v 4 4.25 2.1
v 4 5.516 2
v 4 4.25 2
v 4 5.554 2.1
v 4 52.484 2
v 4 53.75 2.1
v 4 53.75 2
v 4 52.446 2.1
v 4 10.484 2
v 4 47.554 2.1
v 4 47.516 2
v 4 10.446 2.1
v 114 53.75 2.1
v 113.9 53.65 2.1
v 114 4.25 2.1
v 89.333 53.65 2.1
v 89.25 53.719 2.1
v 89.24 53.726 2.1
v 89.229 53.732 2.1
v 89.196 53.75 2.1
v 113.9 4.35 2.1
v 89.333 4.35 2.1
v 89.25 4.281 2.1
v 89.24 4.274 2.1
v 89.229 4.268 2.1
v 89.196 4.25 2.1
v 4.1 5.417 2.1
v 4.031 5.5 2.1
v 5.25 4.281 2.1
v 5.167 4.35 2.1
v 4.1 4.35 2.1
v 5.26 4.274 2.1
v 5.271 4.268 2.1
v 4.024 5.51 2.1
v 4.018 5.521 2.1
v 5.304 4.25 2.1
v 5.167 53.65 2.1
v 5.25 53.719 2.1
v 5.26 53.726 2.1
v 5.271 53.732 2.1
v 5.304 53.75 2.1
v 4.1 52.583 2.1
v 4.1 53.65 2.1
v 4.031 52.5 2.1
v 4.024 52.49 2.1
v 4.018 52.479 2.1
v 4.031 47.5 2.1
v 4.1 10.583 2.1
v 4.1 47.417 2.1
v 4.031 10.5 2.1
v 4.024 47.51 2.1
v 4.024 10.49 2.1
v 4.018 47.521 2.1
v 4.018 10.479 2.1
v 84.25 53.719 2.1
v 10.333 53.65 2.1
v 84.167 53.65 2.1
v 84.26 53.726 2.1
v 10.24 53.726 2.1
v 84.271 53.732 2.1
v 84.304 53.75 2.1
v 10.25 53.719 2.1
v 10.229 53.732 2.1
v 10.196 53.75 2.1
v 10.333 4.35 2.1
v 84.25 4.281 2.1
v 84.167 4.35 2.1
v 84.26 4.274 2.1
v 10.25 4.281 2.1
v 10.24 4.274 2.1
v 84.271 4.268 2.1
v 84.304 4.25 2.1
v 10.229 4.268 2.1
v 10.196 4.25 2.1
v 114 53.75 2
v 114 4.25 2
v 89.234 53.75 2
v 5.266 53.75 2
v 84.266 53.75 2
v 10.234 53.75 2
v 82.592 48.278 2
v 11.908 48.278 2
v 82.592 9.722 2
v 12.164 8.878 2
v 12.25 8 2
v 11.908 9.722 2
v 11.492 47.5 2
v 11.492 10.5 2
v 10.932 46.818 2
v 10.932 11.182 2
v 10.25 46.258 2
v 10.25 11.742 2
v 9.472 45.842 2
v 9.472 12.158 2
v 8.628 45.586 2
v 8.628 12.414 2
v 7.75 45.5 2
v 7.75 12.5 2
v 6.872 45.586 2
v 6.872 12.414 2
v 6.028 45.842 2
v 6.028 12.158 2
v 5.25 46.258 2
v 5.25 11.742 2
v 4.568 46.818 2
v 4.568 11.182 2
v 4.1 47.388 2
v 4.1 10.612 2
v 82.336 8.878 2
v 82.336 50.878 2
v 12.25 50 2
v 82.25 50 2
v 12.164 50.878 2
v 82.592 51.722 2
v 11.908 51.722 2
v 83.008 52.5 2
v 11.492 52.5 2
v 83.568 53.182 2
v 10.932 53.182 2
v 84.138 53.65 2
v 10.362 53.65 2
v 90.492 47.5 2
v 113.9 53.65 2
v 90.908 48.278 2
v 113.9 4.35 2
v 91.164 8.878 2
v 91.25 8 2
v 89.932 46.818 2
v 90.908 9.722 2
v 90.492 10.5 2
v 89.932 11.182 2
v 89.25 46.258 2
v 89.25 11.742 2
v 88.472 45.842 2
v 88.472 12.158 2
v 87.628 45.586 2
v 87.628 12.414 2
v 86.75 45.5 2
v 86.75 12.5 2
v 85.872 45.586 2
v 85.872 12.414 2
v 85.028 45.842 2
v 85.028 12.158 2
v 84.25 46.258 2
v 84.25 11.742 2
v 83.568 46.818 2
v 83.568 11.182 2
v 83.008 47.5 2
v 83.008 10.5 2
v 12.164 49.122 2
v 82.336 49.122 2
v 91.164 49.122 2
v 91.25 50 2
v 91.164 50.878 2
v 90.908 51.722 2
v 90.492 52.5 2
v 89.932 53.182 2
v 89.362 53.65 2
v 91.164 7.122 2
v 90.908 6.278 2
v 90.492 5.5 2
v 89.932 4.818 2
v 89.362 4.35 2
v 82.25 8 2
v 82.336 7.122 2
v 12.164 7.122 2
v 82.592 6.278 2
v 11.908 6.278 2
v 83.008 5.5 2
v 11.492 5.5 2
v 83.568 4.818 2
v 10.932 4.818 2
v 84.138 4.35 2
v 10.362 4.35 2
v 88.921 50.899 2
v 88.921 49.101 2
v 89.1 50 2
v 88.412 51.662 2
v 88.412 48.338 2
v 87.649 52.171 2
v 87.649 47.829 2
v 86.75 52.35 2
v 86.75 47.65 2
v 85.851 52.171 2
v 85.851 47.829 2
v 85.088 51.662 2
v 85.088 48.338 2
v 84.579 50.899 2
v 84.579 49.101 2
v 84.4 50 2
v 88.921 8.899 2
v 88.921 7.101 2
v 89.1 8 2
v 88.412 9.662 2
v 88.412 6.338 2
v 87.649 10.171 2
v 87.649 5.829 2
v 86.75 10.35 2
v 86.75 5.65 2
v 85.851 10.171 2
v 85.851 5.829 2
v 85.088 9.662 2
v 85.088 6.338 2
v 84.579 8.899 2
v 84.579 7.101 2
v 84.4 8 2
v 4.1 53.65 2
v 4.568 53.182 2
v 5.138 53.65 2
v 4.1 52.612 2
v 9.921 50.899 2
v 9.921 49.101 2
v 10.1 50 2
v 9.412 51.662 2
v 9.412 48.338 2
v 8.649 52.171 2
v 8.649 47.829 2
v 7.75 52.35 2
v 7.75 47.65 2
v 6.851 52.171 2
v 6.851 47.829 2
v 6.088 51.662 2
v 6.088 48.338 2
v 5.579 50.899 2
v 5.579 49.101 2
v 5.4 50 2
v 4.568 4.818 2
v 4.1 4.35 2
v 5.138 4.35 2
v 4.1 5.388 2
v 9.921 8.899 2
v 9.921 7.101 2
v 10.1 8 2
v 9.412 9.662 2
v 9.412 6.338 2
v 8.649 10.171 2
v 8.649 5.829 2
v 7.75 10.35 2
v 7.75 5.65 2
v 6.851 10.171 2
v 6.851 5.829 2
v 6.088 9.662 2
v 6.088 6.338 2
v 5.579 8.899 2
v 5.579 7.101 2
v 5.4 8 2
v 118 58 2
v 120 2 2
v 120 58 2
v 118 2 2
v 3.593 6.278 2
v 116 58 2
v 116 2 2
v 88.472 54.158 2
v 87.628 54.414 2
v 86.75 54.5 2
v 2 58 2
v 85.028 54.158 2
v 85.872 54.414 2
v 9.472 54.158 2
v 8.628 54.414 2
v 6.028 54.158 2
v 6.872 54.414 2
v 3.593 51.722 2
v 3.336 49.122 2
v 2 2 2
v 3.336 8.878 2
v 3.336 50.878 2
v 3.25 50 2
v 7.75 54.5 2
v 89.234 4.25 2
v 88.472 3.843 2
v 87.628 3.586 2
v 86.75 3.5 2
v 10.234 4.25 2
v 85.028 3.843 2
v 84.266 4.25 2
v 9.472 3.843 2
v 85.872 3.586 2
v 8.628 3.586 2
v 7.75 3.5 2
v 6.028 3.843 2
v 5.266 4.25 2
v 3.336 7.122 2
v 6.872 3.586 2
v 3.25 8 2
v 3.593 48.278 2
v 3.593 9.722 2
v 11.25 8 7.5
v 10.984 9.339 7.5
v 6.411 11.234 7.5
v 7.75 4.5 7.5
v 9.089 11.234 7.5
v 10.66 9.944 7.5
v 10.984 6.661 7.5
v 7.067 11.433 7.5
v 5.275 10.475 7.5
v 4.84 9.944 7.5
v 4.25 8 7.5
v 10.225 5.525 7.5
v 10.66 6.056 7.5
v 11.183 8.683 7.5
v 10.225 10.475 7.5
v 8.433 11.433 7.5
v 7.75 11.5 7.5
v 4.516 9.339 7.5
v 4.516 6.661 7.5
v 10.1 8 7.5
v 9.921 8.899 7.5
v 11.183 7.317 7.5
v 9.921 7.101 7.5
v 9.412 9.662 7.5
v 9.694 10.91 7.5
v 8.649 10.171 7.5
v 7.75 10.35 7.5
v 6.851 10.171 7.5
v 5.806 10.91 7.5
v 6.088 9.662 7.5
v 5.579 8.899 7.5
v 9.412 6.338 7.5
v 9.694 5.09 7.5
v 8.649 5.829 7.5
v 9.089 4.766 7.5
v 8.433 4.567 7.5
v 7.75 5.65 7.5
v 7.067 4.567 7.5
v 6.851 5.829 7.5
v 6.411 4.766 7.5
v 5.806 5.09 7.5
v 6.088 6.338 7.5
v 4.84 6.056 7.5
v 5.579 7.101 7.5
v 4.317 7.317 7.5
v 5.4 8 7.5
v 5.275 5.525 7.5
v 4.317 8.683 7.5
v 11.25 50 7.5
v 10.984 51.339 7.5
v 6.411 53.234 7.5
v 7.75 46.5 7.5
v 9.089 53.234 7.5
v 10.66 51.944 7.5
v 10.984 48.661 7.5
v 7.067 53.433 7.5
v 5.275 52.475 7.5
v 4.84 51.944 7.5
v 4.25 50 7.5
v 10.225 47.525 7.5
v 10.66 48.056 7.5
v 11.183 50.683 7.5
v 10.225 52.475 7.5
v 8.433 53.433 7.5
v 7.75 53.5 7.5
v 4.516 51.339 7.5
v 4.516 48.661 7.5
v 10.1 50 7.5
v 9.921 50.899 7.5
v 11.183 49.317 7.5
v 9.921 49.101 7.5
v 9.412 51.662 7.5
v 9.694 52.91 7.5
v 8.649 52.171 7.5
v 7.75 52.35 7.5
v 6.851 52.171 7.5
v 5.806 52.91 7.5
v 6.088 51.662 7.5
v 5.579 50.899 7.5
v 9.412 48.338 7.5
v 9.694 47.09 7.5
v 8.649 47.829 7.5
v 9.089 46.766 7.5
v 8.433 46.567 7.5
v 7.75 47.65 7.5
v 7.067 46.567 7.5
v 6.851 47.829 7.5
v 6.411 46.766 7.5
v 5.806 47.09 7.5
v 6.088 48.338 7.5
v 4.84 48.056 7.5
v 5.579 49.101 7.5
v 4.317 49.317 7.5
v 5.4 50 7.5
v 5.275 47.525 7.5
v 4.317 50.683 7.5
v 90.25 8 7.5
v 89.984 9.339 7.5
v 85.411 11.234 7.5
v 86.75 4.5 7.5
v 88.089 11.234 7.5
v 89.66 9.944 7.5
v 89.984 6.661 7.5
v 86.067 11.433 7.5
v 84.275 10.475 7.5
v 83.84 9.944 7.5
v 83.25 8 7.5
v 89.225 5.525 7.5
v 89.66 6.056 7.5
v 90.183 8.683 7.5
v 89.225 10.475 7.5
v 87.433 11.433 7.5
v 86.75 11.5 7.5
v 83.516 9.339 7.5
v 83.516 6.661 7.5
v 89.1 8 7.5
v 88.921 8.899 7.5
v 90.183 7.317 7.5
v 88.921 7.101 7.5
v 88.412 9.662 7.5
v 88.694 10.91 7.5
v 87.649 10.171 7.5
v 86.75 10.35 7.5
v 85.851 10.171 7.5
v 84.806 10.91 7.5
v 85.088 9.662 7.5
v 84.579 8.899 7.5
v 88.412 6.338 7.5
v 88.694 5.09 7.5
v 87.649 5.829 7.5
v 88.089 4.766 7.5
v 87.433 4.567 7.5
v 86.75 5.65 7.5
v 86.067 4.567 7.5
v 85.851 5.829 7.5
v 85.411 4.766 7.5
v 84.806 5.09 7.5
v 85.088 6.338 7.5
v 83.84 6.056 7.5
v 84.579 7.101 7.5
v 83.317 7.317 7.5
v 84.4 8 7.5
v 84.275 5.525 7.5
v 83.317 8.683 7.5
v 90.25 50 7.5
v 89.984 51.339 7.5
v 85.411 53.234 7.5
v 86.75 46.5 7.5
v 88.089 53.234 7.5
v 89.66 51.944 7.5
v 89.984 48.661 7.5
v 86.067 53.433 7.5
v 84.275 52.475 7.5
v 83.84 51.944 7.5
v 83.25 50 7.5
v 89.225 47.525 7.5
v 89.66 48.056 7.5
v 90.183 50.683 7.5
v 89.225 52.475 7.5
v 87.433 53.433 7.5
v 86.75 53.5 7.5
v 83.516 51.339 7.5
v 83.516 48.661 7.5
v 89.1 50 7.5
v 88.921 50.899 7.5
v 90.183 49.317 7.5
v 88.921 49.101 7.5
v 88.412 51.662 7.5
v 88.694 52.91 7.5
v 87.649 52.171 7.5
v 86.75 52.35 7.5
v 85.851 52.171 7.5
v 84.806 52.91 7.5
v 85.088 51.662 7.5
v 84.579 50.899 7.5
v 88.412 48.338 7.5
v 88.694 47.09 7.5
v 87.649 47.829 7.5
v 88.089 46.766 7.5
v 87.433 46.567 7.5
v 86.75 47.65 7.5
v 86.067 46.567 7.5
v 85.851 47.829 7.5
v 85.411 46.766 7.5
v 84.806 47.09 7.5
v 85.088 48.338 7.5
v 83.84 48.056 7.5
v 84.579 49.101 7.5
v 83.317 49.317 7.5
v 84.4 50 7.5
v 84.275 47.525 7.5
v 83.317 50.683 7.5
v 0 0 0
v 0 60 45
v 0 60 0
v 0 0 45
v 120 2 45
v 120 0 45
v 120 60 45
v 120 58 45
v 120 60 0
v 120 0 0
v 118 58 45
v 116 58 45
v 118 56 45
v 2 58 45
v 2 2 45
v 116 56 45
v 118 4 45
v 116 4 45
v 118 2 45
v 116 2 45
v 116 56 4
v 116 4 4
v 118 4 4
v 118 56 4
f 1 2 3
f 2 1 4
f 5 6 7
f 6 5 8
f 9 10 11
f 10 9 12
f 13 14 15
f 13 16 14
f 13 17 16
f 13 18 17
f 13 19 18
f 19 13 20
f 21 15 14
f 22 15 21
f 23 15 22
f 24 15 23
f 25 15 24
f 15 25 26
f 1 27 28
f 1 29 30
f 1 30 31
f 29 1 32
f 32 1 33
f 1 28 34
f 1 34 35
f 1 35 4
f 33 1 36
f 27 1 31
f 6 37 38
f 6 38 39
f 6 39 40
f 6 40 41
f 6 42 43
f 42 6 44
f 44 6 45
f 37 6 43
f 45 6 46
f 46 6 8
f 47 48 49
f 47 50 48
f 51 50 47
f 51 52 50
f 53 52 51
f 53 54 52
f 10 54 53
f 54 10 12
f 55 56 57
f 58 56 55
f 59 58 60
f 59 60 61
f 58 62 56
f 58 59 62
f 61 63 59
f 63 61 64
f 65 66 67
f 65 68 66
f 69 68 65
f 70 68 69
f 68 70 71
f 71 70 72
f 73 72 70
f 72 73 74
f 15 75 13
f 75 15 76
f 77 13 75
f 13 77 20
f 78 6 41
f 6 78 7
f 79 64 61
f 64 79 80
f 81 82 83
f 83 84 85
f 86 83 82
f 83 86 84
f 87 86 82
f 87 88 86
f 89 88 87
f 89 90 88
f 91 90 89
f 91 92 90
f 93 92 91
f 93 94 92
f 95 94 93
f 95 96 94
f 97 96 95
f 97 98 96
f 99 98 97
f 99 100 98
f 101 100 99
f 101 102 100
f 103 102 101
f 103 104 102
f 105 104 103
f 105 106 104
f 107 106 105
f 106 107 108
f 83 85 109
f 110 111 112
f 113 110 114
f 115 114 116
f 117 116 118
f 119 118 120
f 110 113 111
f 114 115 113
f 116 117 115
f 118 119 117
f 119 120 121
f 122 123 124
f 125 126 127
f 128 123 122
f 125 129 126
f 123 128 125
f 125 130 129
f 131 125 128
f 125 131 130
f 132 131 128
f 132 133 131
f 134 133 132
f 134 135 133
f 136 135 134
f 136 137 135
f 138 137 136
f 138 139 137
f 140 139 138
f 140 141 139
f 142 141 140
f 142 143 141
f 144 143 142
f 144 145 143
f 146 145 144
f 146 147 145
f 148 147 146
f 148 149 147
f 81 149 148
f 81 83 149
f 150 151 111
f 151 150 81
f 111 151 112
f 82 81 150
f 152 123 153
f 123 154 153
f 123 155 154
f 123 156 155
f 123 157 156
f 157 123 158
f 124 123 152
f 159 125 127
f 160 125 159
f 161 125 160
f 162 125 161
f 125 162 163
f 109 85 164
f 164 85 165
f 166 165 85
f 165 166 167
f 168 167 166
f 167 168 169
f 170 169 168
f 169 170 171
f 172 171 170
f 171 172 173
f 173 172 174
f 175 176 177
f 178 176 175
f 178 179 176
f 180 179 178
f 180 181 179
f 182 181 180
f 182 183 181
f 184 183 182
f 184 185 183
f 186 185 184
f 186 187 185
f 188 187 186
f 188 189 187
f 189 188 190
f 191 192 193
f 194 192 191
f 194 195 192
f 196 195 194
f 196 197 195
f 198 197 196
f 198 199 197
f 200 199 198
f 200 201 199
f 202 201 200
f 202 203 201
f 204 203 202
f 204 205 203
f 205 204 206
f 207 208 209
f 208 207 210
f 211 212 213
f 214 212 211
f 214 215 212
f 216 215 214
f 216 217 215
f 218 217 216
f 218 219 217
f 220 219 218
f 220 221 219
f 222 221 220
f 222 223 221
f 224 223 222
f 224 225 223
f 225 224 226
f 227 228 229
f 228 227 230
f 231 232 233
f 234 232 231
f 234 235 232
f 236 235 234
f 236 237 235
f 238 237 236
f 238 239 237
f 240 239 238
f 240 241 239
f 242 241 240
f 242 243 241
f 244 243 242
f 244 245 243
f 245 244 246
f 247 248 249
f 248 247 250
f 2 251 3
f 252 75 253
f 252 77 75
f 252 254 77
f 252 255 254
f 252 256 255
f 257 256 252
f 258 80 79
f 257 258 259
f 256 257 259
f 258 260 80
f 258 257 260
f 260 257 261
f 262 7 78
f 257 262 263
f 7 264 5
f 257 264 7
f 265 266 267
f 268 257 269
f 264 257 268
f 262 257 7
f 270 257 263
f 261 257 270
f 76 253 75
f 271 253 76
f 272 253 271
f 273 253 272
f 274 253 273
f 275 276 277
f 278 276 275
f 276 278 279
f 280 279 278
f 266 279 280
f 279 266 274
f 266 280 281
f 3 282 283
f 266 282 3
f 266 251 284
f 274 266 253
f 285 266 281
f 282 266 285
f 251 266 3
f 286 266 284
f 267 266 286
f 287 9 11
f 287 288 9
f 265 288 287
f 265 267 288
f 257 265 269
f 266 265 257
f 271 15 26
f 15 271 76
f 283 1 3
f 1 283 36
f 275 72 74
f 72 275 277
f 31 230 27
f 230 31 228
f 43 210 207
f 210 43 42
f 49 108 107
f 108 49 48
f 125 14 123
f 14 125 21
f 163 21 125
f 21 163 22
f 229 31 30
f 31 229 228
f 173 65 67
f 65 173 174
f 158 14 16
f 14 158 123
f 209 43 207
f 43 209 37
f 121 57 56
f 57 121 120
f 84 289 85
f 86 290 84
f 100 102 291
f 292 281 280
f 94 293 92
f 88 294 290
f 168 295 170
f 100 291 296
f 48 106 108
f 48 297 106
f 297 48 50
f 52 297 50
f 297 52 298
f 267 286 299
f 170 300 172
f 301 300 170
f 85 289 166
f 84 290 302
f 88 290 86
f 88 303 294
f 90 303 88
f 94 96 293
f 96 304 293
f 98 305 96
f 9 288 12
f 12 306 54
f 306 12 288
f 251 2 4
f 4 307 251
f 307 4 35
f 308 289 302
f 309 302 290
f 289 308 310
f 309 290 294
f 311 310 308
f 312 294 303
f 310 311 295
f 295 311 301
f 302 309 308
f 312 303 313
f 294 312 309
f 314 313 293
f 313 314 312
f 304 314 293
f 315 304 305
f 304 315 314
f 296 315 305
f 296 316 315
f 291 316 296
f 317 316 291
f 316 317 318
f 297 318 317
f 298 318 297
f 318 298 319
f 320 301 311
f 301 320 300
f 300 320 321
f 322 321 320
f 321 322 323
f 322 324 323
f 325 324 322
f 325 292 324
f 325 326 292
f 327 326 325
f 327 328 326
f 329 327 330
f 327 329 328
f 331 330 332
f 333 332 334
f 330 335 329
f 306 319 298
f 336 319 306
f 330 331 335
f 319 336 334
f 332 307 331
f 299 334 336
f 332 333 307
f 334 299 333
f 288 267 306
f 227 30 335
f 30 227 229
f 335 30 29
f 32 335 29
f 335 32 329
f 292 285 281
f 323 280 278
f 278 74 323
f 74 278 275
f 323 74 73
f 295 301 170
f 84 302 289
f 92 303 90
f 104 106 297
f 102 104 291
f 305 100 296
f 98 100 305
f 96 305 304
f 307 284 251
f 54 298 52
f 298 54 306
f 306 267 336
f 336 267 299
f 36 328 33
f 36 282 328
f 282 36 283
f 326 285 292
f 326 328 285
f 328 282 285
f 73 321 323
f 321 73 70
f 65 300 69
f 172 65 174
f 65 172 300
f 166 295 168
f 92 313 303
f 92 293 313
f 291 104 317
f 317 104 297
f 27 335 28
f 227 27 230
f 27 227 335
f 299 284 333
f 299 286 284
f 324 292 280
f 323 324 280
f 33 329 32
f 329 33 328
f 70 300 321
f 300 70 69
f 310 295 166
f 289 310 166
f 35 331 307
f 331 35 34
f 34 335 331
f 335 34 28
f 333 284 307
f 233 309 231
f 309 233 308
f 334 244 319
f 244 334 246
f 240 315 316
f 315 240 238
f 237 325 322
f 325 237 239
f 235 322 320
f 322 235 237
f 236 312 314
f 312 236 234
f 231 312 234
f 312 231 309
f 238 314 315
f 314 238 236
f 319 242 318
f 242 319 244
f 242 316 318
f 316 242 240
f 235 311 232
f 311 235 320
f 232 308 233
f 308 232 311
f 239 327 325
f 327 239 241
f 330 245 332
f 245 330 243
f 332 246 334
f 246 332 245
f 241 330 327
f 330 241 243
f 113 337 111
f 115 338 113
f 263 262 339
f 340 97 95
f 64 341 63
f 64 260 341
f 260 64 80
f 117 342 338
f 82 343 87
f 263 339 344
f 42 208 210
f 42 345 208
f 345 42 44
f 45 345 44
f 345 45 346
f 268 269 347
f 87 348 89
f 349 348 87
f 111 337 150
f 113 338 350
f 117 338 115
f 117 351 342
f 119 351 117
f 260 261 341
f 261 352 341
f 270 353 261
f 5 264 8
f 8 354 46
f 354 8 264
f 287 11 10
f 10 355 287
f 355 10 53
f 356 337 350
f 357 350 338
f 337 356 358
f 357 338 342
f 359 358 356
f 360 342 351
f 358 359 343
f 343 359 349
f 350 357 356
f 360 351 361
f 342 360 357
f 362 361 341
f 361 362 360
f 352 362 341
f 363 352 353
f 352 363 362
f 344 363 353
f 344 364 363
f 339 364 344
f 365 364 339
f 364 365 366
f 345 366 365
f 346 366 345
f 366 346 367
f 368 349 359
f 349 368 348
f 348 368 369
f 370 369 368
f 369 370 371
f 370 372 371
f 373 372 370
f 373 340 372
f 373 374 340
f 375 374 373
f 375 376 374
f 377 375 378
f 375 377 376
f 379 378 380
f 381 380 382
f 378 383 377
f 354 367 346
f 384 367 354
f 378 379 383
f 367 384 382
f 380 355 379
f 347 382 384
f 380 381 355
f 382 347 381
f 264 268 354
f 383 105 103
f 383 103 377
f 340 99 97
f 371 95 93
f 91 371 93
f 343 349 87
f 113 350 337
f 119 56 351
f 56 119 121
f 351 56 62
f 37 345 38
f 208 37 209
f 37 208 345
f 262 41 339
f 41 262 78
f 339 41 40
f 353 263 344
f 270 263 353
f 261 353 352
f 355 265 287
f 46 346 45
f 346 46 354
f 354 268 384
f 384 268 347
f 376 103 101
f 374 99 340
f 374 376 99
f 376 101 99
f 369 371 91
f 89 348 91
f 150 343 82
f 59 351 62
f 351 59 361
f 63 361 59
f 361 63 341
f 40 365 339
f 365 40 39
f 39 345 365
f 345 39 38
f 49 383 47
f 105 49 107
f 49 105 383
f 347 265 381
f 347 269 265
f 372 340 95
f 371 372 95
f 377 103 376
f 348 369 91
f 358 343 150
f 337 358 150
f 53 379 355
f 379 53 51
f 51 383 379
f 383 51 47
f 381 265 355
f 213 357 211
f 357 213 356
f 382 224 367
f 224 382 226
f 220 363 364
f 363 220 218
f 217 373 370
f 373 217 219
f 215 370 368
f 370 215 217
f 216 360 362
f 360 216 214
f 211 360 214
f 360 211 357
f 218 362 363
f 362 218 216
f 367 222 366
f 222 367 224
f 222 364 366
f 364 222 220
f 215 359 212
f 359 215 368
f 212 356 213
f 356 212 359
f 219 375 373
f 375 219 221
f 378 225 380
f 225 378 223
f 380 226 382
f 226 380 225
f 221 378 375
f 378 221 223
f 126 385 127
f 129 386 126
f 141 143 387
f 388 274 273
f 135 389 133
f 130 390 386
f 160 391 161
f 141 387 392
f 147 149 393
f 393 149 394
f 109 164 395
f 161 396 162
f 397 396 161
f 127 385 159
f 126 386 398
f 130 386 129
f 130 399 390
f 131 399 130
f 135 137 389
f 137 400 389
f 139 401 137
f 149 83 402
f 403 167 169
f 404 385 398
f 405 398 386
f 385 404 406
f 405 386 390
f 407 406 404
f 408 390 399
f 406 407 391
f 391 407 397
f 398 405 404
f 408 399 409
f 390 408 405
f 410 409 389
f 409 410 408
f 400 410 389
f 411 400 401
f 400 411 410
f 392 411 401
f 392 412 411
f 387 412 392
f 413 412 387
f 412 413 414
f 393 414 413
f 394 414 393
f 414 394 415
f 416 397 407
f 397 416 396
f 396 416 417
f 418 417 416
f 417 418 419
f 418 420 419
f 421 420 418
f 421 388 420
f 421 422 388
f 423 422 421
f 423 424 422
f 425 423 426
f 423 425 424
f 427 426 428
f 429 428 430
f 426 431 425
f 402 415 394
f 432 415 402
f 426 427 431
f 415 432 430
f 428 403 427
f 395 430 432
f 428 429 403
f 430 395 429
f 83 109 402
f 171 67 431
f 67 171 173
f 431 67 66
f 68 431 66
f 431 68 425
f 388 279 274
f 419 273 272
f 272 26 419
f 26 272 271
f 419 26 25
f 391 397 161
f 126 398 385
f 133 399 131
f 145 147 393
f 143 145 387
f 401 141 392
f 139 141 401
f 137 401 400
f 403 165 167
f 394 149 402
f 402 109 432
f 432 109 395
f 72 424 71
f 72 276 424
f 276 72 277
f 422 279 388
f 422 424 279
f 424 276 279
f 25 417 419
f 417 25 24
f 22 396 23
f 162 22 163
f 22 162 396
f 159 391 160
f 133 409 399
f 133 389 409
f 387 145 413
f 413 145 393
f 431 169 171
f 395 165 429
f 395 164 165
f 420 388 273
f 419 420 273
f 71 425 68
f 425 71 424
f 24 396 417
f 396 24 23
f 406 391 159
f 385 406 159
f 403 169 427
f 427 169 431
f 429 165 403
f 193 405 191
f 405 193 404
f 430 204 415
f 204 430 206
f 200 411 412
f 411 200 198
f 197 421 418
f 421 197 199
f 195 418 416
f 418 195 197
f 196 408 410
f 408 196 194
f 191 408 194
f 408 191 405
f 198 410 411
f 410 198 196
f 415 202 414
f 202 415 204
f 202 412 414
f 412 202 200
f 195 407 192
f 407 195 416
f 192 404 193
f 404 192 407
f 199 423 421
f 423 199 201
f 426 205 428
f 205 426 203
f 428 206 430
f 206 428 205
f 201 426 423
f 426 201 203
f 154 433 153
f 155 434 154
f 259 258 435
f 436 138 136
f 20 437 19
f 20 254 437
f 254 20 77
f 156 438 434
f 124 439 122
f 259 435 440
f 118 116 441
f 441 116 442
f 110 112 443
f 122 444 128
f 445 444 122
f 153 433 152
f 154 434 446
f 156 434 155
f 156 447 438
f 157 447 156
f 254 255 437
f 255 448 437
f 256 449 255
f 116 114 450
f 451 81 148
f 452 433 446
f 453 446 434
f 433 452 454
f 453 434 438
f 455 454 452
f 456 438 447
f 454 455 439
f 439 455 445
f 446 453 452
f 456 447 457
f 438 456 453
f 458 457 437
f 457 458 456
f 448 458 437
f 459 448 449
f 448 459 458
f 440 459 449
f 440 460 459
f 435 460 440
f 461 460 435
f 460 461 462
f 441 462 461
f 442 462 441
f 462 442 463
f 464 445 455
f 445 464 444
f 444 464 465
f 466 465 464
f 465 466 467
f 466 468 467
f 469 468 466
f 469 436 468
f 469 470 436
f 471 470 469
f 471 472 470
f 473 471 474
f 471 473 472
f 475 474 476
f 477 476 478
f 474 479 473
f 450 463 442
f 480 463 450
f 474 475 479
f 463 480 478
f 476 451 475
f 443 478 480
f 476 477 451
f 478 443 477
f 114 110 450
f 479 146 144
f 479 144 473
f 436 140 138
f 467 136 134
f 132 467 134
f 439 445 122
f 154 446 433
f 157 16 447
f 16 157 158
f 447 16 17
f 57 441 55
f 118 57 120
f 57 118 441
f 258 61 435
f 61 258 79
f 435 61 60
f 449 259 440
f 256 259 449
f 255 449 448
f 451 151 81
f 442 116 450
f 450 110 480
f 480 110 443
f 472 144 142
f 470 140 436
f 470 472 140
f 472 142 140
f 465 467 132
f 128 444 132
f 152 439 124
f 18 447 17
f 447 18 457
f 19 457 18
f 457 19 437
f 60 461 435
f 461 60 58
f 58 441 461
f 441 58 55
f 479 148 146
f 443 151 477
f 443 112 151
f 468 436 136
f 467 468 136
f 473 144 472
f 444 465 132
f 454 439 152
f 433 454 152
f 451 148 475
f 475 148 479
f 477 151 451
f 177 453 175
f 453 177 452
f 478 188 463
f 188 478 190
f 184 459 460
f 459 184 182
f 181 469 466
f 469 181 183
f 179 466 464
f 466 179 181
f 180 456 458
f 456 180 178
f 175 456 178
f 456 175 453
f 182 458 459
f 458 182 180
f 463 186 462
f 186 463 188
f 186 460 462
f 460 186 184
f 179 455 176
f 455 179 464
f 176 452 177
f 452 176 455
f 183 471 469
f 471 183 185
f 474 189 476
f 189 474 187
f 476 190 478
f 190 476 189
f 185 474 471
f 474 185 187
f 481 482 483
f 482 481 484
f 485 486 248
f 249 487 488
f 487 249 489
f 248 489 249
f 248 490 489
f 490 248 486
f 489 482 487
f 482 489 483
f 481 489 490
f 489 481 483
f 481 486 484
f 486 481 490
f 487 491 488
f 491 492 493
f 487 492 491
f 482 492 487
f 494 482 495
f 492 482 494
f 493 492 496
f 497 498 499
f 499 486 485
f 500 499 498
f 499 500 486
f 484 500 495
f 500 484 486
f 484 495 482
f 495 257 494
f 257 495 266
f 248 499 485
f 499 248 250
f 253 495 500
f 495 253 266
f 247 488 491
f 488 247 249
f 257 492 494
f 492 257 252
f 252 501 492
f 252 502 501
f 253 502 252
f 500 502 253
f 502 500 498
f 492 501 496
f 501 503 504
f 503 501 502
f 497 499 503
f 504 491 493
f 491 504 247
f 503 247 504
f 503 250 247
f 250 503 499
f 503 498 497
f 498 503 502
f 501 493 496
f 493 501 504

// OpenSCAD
L=110;
LL=120;
W=49.5;
WW=60;
HH=45;
T=2;

XW=42;
XL=79;

cube([LL,WW,T]);

cube([2,WW,HH]);

cube([LL,2,HH]);

translate([0,WW-2,0])
cube([LL,2,HH]);

//translate([LL-2,0,0])
//cube([2,WW,HH]);

/*
translate([LL-4-2,0,0])
cube([4,4,HH]);

translate([LL-4-2,WW-4,0])
cube([4,4,HH]);
*/
translate([LL-T-T,0,T])
cube([T,WW,T]);
translate([LL-T-T,T,T])
cube([T,T,HH-T]);
translate([LL-T-T,WW-T-T,T])
cube([T,T,HH-T]);

offsetL = T+2; // (LL-L)/2;
offsetW = (WW-W)/2 - 1;

translate([offsetL, offsetW, T])
auvidea();

module auvidea() {
    
    // marker
    difference() {
        cube([L,W,0.1]);
        translate([0.1,0.1,0])
        cube([L-0.2,W-0.2,0.1]);
    }
    
    
    translate([(W-XW)/2,(W-XW)/2]) {
    translate([0,0])
    standoff();
    translate([0,XW])
    standoff();
    translate([XL,0])
    standoff();
    translate([XL,XW])
    standoff();
    }
    
}

module standoff() {
    difference() {
        cylinder(d1=9,d2=7,h=5.5,$fn=32);
        cylinder(d=4.7,h=6,$fn=16);
    }
}
